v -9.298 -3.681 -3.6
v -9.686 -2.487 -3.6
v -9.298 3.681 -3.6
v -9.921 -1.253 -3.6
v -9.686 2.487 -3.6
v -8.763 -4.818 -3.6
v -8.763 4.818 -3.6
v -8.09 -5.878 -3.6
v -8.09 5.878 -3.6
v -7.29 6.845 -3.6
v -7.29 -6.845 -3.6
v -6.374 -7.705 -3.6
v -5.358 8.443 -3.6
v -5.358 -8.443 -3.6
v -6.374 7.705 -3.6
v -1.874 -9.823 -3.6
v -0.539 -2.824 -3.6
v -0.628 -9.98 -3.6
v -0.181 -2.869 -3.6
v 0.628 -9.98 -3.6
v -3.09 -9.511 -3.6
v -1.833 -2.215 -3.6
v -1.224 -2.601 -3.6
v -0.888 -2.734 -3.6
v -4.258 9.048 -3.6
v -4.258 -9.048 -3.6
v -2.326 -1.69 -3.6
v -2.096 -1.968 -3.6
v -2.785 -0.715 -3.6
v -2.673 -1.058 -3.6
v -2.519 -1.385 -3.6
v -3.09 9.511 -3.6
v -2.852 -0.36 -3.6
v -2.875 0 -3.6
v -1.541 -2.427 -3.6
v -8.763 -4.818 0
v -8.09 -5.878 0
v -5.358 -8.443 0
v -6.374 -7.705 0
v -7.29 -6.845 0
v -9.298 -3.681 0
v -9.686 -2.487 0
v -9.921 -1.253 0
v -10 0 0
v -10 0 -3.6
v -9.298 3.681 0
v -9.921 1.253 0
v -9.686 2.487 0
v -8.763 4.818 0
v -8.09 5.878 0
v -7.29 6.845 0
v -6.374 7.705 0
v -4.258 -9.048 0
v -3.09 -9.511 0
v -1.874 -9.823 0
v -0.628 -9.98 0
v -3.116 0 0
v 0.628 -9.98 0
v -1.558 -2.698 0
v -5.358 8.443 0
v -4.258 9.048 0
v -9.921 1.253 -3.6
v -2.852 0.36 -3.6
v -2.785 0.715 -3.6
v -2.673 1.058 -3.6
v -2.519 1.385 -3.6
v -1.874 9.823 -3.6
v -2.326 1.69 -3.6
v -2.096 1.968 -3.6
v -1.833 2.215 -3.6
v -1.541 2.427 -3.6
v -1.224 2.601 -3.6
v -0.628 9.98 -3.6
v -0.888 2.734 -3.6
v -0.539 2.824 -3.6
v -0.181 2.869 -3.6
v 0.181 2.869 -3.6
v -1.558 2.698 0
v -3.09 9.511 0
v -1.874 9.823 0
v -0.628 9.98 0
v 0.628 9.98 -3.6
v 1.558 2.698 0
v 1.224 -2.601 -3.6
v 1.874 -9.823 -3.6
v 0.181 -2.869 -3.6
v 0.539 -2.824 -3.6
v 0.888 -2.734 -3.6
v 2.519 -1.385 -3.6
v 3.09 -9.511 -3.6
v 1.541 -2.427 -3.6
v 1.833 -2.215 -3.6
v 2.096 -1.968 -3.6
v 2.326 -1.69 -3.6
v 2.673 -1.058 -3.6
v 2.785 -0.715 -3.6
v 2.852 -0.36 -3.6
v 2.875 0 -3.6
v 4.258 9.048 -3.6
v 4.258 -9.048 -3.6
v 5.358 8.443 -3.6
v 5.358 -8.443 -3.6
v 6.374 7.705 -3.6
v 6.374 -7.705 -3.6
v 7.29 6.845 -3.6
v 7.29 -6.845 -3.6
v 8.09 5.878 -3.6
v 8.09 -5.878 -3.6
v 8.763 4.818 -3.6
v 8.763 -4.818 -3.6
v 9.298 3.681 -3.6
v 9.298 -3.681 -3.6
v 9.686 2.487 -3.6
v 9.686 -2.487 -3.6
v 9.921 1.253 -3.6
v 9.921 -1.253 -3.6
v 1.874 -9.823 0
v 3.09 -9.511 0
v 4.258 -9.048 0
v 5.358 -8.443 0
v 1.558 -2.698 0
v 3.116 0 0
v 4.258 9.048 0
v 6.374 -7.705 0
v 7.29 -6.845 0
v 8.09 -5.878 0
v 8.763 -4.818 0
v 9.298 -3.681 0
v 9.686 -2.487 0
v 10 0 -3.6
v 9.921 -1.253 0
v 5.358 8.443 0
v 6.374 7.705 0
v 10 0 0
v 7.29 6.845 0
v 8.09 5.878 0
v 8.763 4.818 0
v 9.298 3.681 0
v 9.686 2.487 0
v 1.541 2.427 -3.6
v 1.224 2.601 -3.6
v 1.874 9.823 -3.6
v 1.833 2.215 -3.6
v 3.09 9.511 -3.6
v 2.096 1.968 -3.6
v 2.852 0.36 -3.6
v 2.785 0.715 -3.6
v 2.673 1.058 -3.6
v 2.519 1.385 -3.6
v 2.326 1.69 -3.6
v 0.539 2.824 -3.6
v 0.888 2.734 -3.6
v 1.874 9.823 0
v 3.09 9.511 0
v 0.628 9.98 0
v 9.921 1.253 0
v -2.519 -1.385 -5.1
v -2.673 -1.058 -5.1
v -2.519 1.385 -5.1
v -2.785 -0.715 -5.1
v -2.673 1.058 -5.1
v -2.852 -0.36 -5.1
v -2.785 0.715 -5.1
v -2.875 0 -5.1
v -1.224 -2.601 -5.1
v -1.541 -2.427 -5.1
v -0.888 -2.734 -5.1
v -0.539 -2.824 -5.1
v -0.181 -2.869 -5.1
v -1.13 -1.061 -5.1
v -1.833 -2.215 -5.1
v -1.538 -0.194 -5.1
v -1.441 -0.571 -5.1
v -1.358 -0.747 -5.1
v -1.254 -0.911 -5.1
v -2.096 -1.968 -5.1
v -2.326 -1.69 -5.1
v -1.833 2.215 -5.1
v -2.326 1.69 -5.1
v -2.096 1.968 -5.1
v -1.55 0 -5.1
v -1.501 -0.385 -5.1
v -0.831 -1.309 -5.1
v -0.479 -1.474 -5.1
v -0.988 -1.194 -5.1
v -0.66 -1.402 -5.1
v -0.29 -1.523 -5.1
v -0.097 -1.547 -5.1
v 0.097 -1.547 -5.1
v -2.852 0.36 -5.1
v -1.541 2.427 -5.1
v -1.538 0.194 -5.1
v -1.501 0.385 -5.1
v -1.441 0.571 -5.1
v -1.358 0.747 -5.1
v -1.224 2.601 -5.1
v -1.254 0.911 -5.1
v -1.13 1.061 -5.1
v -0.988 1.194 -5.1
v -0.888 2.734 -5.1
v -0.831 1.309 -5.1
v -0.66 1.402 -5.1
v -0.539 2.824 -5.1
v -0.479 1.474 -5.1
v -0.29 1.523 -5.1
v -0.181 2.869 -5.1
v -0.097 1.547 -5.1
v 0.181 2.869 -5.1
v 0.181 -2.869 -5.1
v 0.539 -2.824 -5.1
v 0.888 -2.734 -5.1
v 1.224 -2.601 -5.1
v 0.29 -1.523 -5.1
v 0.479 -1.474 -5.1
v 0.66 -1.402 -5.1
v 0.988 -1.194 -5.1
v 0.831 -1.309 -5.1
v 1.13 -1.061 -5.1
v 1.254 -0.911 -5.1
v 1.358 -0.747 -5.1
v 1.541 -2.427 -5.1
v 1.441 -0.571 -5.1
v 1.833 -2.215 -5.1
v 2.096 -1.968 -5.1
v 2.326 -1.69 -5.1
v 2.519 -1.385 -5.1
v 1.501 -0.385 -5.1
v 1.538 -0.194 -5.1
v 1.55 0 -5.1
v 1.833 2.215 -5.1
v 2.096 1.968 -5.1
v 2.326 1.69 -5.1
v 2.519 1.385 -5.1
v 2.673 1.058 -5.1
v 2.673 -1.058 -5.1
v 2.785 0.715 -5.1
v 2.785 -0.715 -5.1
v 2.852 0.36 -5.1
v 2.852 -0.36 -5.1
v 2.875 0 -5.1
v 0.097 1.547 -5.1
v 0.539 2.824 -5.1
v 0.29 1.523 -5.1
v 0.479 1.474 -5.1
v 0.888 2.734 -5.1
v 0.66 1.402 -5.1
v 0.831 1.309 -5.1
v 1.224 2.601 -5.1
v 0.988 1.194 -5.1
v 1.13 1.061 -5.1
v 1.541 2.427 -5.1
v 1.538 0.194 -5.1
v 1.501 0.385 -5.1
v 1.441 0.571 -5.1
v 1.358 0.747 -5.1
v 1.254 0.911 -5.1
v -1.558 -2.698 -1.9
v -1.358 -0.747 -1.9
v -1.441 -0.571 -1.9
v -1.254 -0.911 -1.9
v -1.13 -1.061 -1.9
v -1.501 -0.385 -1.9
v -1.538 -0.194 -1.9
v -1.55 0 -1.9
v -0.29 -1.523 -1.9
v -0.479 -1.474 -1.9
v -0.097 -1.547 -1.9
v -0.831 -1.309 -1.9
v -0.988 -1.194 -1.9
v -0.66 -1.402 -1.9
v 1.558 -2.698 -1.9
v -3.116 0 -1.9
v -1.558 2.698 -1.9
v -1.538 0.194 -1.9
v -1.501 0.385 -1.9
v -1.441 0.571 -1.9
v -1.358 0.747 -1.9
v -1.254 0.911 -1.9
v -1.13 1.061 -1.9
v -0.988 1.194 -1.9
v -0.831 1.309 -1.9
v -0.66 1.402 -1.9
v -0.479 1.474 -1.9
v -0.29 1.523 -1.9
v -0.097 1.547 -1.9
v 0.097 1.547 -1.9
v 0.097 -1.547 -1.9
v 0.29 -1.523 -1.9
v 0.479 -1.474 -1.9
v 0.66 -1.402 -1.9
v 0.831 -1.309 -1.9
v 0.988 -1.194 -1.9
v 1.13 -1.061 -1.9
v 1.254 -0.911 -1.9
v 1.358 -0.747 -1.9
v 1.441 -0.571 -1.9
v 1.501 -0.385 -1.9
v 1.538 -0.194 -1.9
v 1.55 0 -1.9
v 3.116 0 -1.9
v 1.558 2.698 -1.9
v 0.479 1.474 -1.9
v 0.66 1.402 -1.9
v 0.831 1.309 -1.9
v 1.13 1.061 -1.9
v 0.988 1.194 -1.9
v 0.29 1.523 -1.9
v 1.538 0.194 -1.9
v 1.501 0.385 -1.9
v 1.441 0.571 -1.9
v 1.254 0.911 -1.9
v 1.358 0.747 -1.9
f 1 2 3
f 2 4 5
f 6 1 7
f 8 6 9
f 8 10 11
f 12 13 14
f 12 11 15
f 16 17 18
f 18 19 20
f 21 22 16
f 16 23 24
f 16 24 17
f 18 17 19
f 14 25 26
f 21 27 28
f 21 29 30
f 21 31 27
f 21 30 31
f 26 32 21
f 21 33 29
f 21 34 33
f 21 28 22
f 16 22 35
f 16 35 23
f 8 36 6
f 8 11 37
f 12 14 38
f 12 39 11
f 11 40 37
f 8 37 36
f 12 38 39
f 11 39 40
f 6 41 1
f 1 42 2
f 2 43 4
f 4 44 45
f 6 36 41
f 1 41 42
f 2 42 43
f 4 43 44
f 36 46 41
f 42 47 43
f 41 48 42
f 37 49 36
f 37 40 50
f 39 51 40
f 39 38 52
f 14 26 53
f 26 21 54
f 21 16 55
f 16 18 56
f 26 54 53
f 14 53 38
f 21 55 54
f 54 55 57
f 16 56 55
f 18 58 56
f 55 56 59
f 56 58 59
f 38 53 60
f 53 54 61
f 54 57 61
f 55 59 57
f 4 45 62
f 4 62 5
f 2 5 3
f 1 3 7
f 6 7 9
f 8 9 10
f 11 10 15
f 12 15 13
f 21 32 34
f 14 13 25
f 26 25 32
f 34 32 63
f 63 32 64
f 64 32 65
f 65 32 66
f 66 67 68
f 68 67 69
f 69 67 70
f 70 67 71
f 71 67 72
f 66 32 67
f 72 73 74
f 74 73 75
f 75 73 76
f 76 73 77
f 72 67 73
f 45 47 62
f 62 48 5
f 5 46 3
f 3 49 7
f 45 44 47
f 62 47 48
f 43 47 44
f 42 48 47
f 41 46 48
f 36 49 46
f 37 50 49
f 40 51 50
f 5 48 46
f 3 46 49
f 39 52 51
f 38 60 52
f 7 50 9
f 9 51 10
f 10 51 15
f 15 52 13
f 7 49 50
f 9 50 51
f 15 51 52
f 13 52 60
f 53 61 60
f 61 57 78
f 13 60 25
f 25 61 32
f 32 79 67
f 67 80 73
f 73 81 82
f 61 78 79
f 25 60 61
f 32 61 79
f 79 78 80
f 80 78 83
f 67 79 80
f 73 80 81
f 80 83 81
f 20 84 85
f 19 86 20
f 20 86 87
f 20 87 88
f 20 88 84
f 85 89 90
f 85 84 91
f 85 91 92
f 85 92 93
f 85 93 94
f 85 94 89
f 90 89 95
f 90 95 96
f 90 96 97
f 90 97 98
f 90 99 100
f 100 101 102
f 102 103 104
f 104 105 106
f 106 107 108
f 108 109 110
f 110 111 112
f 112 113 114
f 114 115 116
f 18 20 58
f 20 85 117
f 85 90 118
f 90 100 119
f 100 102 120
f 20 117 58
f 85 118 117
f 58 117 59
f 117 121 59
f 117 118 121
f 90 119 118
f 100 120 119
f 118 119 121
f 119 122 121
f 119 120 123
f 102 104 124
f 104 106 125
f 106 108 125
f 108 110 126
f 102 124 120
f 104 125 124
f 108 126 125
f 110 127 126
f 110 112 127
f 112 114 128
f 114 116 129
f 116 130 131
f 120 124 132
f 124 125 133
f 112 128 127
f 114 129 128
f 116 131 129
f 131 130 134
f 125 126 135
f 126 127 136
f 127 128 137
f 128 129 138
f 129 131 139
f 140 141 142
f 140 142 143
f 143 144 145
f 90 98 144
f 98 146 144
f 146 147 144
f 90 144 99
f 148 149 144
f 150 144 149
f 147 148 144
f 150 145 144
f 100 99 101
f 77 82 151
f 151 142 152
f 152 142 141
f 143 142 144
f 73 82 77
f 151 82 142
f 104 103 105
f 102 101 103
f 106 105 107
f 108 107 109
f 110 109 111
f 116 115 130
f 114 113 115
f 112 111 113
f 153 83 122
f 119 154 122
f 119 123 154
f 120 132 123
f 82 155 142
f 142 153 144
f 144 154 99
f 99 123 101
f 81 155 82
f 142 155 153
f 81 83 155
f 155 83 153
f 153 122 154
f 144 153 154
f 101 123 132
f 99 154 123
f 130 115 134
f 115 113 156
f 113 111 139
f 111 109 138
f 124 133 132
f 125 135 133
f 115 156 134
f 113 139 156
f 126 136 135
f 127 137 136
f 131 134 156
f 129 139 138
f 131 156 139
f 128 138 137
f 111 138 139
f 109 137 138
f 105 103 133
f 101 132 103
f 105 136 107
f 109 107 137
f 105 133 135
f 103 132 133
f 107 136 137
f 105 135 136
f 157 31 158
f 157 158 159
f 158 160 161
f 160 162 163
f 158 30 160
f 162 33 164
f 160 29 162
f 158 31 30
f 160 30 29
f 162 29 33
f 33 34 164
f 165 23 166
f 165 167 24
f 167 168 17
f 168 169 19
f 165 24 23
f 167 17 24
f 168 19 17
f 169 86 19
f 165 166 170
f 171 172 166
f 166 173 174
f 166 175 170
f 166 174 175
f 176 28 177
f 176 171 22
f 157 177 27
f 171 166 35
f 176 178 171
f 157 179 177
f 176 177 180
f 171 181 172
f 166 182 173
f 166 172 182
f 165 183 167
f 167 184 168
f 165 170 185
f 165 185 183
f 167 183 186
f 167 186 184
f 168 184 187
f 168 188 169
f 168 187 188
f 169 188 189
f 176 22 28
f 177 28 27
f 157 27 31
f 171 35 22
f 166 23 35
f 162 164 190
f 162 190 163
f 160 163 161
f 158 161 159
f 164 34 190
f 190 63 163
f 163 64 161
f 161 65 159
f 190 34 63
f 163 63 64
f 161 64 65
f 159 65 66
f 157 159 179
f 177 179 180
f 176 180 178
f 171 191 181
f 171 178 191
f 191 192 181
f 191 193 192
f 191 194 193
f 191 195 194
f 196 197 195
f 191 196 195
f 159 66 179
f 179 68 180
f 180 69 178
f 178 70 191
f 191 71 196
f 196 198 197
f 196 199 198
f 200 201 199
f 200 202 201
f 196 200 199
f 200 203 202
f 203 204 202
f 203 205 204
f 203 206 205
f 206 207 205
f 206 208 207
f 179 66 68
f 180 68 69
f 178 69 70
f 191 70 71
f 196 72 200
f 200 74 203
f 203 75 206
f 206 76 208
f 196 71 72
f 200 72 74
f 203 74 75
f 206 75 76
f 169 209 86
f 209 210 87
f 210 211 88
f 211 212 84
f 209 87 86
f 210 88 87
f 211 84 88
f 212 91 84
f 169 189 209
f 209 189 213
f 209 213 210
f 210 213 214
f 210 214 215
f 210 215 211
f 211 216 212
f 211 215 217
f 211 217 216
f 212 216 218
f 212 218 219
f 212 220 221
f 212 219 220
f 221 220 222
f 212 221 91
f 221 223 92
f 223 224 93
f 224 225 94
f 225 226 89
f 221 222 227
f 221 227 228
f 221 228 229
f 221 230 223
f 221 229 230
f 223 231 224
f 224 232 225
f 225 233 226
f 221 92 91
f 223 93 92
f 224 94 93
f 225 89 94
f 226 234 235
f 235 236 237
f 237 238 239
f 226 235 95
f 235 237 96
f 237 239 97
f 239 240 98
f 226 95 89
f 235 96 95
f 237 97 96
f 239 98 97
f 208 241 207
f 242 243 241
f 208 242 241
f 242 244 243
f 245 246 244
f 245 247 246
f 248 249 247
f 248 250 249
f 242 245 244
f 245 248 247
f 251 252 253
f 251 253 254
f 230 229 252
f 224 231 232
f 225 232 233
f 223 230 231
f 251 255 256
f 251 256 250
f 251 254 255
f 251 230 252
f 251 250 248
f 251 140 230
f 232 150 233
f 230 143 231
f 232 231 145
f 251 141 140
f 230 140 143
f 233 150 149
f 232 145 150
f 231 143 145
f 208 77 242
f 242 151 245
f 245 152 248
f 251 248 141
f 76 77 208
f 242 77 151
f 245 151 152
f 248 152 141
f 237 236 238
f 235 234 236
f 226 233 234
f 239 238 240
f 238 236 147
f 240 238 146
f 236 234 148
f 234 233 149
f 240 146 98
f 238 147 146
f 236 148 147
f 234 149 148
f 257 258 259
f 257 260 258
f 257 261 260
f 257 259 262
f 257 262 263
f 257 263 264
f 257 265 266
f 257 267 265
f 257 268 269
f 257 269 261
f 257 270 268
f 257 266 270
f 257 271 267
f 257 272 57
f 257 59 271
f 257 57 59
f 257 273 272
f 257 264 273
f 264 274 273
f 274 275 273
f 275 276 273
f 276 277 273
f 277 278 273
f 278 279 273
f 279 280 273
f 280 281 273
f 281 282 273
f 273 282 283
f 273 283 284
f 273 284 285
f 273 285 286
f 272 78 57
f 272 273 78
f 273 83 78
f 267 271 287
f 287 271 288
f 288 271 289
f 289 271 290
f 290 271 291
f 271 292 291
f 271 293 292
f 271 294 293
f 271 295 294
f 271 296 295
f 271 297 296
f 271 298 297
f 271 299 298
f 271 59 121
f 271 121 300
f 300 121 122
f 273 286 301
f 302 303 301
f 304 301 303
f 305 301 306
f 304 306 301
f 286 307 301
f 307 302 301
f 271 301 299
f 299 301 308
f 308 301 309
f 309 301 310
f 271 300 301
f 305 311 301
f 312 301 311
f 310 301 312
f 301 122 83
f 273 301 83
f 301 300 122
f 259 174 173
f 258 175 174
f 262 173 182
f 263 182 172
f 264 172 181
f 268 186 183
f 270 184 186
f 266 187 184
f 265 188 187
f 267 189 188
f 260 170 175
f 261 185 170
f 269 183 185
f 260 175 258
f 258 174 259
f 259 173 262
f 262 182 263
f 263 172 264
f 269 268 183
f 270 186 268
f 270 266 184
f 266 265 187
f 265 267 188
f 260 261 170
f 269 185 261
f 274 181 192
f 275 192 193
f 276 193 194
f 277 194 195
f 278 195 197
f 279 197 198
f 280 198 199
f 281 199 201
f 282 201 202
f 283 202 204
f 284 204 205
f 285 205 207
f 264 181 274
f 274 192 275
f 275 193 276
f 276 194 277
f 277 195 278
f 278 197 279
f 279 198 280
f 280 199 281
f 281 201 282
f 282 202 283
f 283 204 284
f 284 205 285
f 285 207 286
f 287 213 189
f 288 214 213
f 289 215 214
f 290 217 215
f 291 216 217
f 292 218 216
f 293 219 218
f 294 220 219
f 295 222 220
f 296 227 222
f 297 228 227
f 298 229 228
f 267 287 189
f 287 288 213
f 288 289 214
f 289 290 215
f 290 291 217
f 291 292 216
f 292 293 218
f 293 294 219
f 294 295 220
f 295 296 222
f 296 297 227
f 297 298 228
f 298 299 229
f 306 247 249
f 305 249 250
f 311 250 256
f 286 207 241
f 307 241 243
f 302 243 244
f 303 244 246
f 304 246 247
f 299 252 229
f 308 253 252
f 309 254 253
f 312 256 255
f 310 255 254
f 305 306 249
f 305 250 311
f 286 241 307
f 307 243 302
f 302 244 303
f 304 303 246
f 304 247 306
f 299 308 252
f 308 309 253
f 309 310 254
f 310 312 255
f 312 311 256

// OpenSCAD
$fn = 50;

difference() {
	union() {
		translate(v = [0, 0, -3.6]) {
			cylinder(h = 3.6, r = 10.0);
		}
		#translate(v = [0, 0, -5.1]) {
			cylinder(h = 5.1, r = 2.875);
		}
	}
	union() {
		translate(v = [0, 0, 0]) {
			rotate(a = [0, 0, 0]) {
				difference() {
					union() {
						translate(v = [0, 0, -1.9]) {
							linear_extrude(height = 1.9) {
								polygon(points = [[3.1158, 0.0], [1.5579000000000005, 2.698361953111554], [-1.5578999999999994, 2.6983619531115544], [-3.1158, 3.815754496783323e-16], [-1.5579000000000014, -2.6983619531115535], [1.557899999999998, -2.6983619531115552]]);
							}
						}
					}
					union();
				}
			}
		}
		#translate(v = [0, 0, -100.0]) {
			cylinder(h = 200, r = 1.55);
		}
	}
}
